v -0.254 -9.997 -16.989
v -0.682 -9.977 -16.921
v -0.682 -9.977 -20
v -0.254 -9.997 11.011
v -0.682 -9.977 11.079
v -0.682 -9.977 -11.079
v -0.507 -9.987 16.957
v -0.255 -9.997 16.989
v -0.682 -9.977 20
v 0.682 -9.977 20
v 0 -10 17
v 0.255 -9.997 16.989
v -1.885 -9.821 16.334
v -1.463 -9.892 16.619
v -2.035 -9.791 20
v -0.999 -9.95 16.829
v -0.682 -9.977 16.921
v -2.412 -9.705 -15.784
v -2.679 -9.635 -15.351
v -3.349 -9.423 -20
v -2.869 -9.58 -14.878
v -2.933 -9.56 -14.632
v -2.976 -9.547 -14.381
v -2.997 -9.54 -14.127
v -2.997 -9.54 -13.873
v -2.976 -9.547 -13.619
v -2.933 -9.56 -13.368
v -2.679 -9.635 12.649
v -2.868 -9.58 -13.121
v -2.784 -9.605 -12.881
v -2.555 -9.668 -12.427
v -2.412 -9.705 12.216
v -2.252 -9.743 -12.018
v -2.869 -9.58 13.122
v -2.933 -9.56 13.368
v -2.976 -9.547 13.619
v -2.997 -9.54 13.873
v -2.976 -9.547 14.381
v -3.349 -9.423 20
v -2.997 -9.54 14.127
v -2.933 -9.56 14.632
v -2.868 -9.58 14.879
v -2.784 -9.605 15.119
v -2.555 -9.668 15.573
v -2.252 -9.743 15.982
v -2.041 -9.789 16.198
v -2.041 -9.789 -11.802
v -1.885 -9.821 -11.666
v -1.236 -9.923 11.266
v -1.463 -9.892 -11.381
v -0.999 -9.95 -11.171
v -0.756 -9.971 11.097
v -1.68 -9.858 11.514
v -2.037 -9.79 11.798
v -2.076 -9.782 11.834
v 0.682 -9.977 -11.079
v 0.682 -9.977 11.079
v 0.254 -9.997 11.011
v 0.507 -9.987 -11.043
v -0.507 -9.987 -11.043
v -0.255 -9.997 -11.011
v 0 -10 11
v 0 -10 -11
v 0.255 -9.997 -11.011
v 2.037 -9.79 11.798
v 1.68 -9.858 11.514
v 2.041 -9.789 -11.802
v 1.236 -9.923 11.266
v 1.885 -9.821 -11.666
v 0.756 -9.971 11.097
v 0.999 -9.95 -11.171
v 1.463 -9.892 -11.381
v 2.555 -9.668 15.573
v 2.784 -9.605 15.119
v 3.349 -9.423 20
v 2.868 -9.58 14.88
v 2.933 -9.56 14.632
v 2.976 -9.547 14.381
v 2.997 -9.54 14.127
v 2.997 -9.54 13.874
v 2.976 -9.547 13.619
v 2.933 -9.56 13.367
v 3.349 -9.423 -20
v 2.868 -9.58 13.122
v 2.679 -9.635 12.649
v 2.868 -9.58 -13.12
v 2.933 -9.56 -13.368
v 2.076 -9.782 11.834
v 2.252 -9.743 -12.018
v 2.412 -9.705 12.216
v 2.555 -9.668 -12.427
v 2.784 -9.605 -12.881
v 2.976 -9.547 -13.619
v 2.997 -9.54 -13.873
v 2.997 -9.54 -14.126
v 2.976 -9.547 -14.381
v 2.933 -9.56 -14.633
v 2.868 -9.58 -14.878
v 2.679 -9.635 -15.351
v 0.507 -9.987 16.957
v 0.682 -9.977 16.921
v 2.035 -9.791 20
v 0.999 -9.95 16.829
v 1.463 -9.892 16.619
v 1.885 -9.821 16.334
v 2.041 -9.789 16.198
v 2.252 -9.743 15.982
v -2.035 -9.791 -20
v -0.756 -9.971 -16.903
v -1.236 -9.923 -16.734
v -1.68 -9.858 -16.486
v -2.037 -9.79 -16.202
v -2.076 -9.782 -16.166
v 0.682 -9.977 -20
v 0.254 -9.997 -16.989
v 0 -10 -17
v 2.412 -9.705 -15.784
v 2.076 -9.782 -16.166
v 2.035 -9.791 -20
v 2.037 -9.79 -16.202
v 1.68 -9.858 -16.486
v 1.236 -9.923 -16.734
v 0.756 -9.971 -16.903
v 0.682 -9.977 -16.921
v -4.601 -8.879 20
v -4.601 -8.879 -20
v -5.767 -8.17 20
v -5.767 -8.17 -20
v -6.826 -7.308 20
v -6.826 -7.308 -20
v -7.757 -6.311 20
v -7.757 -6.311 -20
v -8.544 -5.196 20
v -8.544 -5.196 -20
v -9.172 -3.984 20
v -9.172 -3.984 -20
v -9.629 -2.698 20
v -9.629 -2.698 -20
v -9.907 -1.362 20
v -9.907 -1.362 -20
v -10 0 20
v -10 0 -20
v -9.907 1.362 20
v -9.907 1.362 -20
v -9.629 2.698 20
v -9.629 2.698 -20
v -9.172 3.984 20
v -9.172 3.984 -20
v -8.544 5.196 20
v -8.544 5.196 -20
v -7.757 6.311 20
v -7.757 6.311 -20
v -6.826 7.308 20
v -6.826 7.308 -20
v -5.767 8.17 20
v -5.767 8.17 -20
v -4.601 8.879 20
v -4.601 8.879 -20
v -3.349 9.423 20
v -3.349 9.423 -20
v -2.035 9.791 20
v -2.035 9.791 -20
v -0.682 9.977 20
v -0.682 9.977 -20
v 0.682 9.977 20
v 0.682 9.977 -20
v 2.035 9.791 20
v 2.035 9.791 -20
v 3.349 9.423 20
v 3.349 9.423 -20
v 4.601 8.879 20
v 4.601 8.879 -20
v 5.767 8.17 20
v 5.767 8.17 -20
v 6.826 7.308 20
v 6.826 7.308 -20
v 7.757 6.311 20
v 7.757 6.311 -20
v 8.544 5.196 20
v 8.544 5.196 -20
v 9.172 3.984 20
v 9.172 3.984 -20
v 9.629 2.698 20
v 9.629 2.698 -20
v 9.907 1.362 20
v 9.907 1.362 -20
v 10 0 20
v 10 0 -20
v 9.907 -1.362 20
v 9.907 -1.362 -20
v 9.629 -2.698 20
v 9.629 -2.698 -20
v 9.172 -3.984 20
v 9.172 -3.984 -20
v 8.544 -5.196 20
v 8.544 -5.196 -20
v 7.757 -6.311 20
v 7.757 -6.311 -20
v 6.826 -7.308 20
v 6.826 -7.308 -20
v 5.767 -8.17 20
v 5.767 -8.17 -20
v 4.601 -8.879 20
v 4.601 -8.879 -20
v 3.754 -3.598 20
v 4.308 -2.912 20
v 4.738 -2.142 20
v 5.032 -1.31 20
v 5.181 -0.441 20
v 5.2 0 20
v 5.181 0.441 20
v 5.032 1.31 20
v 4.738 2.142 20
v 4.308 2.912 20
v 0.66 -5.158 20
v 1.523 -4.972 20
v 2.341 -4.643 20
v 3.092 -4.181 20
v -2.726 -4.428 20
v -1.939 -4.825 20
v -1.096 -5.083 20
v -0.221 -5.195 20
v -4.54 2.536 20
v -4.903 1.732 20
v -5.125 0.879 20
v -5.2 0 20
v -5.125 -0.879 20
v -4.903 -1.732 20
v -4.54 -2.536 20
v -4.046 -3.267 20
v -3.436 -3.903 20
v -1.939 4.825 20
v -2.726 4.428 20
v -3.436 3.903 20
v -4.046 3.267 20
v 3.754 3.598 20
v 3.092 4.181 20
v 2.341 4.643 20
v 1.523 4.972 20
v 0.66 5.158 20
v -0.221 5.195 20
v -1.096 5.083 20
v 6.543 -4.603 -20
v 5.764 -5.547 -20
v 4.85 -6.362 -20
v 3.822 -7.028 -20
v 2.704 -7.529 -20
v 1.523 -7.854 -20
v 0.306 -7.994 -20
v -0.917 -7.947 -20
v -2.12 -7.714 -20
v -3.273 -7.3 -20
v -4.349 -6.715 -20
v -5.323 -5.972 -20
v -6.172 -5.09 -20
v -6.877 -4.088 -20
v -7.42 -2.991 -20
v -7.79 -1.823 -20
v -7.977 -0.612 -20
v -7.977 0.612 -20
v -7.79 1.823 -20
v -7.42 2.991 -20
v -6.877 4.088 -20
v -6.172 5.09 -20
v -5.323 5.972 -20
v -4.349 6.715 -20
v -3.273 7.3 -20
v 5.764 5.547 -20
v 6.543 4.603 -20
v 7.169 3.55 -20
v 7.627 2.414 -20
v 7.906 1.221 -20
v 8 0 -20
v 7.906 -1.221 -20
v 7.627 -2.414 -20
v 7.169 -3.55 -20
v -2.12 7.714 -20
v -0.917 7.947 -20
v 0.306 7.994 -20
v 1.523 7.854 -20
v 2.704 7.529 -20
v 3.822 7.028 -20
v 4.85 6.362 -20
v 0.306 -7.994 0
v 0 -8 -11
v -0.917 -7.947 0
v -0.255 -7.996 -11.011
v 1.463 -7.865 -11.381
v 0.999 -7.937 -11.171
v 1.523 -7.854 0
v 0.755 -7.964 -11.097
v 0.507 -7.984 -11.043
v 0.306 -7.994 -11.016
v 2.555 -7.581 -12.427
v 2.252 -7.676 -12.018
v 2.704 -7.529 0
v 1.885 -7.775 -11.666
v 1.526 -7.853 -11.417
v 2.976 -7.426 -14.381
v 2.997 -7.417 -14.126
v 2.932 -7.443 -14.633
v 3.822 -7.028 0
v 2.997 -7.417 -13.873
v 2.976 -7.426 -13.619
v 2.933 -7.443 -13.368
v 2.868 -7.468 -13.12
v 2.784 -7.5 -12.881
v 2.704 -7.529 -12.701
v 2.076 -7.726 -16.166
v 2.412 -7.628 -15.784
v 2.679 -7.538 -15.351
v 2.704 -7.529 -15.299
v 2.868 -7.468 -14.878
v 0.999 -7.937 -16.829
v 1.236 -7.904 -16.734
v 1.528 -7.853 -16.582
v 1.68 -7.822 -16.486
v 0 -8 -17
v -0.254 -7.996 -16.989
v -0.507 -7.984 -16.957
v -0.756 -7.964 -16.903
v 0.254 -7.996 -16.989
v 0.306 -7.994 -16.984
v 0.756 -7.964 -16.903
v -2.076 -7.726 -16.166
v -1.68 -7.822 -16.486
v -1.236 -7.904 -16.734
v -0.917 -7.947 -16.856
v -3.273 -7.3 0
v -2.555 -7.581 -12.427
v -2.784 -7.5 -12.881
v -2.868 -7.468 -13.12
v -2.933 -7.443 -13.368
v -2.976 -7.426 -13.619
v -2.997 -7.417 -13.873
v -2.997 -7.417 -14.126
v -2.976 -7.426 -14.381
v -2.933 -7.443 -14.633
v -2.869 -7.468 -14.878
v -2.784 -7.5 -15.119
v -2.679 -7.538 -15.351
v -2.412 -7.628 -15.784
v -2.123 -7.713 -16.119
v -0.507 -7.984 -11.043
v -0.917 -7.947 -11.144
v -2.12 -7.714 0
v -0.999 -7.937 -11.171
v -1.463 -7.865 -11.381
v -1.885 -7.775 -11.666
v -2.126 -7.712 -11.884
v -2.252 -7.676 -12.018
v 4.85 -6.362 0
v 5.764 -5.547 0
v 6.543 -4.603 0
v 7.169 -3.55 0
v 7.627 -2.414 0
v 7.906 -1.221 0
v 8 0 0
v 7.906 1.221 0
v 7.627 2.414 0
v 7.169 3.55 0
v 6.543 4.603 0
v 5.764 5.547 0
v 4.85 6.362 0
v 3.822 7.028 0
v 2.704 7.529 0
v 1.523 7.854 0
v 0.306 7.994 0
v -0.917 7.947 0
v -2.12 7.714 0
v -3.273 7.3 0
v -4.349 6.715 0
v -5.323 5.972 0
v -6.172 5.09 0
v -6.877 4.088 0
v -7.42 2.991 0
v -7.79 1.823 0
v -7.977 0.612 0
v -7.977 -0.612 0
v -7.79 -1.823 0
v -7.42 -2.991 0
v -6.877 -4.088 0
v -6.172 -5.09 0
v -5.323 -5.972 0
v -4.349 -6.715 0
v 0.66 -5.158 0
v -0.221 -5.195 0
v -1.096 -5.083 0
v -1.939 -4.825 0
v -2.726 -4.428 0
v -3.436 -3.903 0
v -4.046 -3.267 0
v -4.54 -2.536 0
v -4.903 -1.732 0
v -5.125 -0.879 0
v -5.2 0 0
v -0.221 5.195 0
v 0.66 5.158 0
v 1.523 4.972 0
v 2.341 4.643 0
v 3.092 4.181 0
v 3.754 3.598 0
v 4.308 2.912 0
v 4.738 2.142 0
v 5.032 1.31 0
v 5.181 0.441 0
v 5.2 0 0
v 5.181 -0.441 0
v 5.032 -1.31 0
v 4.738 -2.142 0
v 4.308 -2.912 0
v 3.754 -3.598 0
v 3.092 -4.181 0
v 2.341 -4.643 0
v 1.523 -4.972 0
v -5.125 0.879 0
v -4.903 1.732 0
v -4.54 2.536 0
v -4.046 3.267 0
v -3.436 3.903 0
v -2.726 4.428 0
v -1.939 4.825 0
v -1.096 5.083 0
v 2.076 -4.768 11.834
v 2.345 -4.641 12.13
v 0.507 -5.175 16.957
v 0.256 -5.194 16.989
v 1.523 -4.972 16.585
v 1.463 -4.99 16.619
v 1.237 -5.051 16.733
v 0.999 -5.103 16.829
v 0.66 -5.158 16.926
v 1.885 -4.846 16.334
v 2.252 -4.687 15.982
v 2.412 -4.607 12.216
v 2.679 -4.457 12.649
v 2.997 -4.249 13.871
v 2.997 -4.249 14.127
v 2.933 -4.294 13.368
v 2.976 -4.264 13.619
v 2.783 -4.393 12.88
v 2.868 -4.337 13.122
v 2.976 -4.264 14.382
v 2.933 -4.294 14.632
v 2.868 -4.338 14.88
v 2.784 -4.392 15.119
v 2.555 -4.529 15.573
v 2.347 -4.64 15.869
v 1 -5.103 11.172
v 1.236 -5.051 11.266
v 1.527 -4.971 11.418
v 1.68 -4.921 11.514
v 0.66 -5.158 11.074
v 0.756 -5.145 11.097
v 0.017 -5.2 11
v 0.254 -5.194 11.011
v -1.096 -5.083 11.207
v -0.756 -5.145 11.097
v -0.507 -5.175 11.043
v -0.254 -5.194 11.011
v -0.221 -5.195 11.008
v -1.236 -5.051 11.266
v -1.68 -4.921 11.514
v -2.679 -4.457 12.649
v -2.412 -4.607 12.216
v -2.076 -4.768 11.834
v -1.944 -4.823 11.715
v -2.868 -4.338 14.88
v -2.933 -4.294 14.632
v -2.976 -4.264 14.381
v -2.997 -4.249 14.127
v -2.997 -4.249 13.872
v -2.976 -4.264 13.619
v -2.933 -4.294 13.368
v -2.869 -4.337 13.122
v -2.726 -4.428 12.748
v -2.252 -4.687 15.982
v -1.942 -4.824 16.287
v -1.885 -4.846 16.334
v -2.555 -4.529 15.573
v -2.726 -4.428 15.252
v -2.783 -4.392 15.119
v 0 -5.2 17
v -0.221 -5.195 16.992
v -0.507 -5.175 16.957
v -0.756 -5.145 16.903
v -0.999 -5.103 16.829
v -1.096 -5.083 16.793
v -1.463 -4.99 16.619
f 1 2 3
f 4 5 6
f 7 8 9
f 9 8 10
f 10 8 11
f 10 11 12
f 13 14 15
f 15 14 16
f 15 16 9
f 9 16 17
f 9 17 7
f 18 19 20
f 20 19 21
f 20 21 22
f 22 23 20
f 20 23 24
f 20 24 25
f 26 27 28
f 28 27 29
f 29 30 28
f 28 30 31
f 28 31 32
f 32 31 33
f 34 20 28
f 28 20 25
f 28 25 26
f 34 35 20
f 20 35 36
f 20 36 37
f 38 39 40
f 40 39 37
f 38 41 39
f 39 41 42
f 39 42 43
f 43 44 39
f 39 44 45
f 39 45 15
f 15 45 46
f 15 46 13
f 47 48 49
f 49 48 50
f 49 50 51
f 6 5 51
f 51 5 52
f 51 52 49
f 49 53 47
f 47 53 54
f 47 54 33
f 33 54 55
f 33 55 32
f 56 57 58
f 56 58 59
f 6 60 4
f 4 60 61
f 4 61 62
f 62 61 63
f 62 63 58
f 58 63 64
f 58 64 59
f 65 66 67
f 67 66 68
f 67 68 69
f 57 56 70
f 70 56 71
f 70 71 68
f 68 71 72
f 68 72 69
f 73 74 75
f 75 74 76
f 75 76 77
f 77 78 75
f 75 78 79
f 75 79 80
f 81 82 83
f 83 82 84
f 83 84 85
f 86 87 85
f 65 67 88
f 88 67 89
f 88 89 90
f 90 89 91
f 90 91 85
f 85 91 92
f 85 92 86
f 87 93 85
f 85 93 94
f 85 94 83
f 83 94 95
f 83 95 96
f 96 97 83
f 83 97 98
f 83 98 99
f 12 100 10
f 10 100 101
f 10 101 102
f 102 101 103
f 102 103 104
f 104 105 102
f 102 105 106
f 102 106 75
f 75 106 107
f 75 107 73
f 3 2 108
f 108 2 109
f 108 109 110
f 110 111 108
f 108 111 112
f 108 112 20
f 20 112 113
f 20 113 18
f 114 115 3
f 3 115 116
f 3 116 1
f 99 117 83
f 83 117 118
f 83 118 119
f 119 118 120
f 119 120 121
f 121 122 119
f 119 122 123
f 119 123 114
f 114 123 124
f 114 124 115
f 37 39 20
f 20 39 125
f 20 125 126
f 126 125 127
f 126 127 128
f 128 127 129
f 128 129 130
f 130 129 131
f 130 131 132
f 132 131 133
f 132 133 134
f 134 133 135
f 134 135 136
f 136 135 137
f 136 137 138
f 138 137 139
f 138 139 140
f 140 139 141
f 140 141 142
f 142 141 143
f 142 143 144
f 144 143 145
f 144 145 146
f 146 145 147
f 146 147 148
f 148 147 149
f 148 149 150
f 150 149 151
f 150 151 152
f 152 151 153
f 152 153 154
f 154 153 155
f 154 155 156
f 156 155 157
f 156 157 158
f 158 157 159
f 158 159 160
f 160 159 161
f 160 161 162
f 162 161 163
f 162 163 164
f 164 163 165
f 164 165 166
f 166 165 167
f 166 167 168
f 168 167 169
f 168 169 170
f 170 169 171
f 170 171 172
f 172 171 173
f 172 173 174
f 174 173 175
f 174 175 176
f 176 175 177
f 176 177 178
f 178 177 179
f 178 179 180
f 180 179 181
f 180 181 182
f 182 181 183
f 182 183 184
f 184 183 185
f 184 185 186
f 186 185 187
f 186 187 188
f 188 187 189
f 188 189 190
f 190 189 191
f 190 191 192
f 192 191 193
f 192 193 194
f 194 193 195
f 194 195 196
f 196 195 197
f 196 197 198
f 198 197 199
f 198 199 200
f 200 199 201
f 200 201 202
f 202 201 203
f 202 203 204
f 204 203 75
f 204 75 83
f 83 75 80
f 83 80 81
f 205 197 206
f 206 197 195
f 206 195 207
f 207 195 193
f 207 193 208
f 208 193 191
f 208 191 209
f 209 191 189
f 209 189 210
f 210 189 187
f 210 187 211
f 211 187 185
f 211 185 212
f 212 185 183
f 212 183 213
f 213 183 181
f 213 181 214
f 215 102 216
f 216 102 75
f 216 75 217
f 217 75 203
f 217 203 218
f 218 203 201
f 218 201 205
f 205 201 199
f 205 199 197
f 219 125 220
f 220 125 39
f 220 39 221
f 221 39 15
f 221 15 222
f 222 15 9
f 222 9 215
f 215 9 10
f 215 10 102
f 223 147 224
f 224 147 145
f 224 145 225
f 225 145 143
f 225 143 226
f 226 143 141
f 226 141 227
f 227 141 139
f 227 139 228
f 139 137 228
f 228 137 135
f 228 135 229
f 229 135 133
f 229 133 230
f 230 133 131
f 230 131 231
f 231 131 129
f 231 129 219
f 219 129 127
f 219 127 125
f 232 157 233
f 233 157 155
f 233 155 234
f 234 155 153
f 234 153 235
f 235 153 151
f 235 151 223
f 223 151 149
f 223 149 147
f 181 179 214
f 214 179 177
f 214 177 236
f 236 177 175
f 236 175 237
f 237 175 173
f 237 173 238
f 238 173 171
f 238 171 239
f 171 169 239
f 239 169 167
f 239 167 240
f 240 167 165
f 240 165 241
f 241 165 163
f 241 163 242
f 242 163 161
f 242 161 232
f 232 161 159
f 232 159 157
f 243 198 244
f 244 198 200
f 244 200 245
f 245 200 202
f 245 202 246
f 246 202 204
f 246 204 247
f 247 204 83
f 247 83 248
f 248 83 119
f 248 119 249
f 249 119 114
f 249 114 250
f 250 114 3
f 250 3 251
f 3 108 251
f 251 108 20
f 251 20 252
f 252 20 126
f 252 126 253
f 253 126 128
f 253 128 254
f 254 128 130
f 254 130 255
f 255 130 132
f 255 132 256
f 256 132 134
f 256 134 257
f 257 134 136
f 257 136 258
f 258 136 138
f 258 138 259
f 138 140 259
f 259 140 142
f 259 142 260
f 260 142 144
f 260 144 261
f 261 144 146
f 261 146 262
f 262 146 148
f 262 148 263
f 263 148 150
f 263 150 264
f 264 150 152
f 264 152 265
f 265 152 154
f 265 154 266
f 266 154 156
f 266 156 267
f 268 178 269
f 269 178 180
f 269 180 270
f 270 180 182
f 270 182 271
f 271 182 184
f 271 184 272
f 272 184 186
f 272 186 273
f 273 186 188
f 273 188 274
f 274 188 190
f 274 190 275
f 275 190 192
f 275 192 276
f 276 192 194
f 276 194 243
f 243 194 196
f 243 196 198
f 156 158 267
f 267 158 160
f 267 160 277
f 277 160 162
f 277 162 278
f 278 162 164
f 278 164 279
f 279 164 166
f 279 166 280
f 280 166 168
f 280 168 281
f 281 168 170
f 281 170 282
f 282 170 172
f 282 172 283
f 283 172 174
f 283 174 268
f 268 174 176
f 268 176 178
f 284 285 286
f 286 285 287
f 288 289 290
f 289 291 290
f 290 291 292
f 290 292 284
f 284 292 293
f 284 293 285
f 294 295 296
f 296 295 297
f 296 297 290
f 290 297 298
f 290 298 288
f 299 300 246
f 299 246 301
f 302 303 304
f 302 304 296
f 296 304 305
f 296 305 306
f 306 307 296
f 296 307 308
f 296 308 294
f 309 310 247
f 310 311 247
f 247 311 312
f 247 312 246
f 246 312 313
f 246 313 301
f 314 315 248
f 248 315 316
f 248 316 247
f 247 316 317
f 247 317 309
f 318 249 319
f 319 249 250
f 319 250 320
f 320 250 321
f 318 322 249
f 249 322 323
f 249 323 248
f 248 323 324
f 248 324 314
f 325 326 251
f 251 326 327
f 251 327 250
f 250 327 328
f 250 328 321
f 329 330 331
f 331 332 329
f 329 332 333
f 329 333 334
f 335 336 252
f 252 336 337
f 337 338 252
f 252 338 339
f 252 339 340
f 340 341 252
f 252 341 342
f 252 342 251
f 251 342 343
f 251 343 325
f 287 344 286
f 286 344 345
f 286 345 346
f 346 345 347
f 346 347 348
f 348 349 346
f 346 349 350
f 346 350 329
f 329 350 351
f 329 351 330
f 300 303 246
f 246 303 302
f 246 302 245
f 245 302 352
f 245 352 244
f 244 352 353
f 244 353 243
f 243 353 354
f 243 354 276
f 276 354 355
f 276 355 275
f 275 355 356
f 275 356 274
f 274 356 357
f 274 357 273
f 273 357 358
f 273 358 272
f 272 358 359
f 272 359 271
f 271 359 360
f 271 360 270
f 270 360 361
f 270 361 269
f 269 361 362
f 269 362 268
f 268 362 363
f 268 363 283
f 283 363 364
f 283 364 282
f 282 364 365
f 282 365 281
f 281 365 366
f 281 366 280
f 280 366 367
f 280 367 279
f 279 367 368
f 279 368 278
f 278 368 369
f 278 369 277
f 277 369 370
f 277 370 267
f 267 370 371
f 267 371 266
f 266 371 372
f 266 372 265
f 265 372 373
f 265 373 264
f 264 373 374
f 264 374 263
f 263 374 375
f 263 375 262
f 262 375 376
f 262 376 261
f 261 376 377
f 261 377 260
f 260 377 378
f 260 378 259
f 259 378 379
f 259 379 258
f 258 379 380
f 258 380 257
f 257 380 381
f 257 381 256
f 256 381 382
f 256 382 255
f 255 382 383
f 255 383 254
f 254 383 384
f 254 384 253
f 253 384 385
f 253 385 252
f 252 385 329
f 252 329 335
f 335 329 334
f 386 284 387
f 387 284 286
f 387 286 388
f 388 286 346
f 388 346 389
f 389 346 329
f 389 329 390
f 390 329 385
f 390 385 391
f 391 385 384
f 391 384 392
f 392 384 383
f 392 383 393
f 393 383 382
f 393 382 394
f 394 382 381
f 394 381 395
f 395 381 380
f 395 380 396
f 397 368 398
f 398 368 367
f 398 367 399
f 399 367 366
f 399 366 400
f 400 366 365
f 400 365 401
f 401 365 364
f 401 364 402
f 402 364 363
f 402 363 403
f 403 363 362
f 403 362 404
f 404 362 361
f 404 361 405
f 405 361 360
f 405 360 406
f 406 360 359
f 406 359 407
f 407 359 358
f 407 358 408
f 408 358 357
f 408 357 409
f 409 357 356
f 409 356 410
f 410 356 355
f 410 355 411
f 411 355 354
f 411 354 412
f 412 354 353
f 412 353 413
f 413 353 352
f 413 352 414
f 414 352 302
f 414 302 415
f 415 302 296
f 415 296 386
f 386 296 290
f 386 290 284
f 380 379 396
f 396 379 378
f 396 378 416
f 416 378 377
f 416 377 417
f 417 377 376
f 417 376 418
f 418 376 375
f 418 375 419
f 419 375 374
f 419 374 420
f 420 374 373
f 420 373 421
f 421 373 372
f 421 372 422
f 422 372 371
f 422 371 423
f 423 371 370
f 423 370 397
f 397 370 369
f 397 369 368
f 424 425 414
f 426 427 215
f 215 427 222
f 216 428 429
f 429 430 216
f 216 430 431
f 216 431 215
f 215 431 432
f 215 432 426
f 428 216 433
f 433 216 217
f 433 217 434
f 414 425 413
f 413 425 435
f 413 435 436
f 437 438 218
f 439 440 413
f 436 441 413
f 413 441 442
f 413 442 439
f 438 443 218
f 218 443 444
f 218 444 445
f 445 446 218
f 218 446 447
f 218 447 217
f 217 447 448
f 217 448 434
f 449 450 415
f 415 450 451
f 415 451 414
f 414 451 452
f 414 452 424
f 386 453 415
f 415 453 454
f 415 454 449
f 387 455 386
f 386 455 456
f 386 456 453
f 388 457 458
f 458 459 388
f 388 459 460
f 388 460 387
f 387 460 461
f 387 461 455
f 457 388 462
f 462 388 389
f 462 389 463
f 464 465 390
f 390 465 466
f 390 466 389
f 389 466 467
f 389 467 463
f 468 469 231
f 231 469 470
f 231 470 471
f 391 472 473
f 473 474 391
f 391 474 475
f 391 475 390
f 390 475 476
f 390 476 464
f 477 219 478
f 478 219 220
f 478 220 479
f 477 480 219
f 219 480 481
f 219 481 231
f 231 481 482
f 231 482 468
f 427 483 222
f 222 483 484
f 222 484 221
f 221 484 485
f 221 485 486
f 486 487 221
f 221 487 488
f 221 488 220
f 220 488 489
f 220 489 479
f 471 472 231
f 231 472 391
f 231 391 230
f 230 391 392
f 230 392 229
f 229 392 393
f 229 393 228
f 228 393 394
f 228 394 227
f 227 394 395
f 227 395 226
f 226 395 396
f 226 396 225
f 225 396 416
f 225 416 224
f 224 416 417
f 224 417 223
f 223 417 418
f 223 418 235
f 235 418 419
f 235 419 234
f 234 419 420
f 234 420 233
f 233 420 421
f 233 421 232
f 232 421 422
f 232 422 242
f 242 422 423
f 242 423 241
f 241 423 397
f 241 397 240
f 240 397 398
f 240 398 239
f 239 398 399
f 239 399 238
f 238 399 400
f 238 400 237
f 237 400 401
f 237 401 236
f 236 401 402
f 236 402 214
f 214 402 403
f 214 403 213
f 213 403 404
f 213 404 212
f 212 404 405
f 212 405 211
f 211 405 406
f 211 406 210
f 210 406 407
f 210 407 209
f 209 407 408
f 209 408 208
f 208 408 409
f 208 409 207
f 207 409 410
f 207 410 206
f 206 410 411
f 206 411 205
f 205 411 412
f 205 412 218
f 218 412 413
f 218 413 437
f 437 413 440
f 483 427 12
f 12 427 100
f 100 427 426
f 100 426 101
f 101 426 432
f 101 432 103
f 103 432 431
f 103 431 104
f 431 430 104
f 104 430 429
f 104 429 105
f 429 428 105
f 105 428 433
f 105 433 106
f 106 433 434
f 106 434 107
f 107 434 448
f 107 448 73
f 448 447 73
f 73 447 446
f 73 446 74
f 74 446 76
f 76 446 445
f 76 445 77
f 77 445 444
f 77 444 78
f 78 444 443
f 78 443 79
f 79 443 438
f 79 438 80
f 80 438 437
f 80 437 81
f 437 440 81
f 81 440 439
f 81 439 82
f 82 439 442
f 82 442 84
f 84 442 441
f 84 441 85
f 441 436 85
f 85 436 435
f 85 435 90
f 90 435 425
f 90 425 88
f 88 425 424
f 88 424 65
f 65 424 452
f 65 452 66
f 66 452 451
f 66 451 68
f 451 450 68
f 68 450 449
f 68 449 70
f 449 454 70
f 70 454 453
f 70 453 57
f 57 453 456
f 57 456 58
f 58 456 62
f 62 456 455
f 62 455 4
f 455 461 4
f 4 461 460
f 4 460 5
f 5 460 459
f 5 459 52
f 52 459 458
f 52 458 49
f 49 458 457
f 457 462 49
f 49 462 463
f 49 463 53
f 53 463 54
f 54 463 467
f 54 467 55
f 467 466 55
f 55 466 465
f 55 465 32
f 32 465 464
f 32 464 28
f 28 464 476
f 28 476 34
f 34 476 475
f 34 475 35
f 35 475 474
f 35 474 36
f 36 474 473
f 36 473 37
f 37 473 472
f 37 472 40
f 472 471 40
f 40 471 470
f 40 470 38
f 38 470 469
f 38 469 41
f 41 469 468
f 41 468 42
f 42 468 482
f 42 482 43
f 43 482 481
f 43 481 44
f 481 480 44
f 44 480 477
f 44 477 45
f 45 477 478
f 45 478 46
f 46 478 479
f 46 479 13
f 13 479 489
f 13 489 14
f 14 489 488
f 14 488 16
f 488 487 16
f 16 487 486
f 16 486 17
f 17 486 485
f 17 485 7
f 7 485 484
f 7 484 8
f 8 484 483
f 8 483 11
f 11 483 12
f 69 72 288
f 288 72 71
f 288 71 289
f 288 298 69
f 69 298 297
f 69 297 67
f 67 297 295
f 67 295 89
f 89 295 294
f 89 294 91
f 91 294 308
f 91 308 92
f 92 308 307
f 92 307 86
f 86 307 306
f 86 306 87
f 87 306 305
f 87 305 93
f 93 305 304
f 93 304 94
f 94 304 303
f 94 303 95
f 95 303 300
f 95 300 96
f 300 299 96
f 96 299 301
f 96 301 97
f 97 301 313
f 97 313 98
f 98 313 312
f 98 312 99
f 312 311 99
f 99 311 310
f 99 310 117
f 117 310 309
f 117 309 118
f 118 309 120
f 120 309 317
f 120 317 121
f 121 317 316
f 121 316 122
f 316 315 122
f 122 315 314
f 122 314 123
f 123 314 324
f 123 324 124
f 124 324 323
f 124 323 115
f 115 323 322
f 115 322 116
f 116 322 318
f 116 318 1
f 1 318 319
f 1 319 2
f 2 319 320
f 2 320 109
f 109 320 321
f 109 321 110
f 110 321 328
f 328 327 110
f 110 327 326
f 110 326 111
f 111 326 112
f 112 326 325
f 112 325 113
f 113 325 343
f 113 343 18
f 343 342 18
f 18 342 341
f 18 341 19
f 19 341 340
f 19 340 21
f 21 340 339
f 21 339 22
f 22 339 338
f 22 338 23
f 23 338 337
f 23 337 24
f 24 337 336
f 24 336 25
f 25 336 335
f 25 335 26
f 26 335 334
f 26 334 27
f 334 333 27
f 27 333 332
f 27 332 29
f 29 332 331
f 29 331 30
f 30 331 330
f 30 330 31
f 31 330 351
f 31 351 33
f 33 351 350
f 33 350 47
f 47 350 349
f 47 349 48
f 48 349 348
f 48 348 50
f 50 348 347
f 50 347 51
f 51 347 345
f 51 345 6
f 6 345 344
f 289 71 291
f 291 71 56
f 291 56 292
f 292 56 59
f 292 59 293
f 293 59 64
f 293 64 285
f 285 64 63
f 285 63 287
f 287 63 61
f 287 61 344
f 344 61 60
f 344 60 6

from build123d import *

# Parameters (mm, degrees)
SKETCH1_R           = 10
BOSS_EXTRUDE1_DEPTH = 20
SKETCH5_R           = 8
CUT_EXTRUDE2_DEPTH  = 25
SKETCH6_R           = 5.2
CUT_EXTRUDE3_DEPTH  = 25
SKETCH7_R           = 3
CUT_EXTRUDE4_DEPTH  = 10


with BuildPart() as part:
    # Sketch1 → Boss-Extrude1 (new, symmetric)
    with BuildSketch(Plane.XY):
        Circle(SKETCH1_R)
    extrude(amount=BOSS_EXTRUDE1_DEPTH, both=True)

    # Sketch5 → Cut-Extrude2 (cut)
    with BuildSketch(Plane.XY):
        Circle(SKETCH5_R)
    extrude(amount=-CUT_EXTRUDE2_DEPTH, mode=Mode.SUBTRACT)

    # Sketch6 → Cut-Extrude3 (cut)
    with BuildSketch(Plane.XY):
        Circle(SKETCH6_R)
    extrude(amount=CUT_EXTRUDE3_DEPTH, mode=Mode.SUBTRACT)

    # Sketch7 → Cut-Extrude4 (cut)
    with BuildSketch(Plane(origin=(0, 0, 0), x_dir=(1, 0, 0), z_dir=(0, 1, 0))):
        with Locations(Location((0, 14, 0), (0, 0, 270))):
            Circle(SKETCH7_R)
        with Locations(Location((0, -14, 0), (0, 0, 270))):
            Circle(SKETCH7_R)
    extrude(amount=-CUT_EXTRUDE4_DEPTH, mode=Mode.SUBTRACT)


solid = part.part
